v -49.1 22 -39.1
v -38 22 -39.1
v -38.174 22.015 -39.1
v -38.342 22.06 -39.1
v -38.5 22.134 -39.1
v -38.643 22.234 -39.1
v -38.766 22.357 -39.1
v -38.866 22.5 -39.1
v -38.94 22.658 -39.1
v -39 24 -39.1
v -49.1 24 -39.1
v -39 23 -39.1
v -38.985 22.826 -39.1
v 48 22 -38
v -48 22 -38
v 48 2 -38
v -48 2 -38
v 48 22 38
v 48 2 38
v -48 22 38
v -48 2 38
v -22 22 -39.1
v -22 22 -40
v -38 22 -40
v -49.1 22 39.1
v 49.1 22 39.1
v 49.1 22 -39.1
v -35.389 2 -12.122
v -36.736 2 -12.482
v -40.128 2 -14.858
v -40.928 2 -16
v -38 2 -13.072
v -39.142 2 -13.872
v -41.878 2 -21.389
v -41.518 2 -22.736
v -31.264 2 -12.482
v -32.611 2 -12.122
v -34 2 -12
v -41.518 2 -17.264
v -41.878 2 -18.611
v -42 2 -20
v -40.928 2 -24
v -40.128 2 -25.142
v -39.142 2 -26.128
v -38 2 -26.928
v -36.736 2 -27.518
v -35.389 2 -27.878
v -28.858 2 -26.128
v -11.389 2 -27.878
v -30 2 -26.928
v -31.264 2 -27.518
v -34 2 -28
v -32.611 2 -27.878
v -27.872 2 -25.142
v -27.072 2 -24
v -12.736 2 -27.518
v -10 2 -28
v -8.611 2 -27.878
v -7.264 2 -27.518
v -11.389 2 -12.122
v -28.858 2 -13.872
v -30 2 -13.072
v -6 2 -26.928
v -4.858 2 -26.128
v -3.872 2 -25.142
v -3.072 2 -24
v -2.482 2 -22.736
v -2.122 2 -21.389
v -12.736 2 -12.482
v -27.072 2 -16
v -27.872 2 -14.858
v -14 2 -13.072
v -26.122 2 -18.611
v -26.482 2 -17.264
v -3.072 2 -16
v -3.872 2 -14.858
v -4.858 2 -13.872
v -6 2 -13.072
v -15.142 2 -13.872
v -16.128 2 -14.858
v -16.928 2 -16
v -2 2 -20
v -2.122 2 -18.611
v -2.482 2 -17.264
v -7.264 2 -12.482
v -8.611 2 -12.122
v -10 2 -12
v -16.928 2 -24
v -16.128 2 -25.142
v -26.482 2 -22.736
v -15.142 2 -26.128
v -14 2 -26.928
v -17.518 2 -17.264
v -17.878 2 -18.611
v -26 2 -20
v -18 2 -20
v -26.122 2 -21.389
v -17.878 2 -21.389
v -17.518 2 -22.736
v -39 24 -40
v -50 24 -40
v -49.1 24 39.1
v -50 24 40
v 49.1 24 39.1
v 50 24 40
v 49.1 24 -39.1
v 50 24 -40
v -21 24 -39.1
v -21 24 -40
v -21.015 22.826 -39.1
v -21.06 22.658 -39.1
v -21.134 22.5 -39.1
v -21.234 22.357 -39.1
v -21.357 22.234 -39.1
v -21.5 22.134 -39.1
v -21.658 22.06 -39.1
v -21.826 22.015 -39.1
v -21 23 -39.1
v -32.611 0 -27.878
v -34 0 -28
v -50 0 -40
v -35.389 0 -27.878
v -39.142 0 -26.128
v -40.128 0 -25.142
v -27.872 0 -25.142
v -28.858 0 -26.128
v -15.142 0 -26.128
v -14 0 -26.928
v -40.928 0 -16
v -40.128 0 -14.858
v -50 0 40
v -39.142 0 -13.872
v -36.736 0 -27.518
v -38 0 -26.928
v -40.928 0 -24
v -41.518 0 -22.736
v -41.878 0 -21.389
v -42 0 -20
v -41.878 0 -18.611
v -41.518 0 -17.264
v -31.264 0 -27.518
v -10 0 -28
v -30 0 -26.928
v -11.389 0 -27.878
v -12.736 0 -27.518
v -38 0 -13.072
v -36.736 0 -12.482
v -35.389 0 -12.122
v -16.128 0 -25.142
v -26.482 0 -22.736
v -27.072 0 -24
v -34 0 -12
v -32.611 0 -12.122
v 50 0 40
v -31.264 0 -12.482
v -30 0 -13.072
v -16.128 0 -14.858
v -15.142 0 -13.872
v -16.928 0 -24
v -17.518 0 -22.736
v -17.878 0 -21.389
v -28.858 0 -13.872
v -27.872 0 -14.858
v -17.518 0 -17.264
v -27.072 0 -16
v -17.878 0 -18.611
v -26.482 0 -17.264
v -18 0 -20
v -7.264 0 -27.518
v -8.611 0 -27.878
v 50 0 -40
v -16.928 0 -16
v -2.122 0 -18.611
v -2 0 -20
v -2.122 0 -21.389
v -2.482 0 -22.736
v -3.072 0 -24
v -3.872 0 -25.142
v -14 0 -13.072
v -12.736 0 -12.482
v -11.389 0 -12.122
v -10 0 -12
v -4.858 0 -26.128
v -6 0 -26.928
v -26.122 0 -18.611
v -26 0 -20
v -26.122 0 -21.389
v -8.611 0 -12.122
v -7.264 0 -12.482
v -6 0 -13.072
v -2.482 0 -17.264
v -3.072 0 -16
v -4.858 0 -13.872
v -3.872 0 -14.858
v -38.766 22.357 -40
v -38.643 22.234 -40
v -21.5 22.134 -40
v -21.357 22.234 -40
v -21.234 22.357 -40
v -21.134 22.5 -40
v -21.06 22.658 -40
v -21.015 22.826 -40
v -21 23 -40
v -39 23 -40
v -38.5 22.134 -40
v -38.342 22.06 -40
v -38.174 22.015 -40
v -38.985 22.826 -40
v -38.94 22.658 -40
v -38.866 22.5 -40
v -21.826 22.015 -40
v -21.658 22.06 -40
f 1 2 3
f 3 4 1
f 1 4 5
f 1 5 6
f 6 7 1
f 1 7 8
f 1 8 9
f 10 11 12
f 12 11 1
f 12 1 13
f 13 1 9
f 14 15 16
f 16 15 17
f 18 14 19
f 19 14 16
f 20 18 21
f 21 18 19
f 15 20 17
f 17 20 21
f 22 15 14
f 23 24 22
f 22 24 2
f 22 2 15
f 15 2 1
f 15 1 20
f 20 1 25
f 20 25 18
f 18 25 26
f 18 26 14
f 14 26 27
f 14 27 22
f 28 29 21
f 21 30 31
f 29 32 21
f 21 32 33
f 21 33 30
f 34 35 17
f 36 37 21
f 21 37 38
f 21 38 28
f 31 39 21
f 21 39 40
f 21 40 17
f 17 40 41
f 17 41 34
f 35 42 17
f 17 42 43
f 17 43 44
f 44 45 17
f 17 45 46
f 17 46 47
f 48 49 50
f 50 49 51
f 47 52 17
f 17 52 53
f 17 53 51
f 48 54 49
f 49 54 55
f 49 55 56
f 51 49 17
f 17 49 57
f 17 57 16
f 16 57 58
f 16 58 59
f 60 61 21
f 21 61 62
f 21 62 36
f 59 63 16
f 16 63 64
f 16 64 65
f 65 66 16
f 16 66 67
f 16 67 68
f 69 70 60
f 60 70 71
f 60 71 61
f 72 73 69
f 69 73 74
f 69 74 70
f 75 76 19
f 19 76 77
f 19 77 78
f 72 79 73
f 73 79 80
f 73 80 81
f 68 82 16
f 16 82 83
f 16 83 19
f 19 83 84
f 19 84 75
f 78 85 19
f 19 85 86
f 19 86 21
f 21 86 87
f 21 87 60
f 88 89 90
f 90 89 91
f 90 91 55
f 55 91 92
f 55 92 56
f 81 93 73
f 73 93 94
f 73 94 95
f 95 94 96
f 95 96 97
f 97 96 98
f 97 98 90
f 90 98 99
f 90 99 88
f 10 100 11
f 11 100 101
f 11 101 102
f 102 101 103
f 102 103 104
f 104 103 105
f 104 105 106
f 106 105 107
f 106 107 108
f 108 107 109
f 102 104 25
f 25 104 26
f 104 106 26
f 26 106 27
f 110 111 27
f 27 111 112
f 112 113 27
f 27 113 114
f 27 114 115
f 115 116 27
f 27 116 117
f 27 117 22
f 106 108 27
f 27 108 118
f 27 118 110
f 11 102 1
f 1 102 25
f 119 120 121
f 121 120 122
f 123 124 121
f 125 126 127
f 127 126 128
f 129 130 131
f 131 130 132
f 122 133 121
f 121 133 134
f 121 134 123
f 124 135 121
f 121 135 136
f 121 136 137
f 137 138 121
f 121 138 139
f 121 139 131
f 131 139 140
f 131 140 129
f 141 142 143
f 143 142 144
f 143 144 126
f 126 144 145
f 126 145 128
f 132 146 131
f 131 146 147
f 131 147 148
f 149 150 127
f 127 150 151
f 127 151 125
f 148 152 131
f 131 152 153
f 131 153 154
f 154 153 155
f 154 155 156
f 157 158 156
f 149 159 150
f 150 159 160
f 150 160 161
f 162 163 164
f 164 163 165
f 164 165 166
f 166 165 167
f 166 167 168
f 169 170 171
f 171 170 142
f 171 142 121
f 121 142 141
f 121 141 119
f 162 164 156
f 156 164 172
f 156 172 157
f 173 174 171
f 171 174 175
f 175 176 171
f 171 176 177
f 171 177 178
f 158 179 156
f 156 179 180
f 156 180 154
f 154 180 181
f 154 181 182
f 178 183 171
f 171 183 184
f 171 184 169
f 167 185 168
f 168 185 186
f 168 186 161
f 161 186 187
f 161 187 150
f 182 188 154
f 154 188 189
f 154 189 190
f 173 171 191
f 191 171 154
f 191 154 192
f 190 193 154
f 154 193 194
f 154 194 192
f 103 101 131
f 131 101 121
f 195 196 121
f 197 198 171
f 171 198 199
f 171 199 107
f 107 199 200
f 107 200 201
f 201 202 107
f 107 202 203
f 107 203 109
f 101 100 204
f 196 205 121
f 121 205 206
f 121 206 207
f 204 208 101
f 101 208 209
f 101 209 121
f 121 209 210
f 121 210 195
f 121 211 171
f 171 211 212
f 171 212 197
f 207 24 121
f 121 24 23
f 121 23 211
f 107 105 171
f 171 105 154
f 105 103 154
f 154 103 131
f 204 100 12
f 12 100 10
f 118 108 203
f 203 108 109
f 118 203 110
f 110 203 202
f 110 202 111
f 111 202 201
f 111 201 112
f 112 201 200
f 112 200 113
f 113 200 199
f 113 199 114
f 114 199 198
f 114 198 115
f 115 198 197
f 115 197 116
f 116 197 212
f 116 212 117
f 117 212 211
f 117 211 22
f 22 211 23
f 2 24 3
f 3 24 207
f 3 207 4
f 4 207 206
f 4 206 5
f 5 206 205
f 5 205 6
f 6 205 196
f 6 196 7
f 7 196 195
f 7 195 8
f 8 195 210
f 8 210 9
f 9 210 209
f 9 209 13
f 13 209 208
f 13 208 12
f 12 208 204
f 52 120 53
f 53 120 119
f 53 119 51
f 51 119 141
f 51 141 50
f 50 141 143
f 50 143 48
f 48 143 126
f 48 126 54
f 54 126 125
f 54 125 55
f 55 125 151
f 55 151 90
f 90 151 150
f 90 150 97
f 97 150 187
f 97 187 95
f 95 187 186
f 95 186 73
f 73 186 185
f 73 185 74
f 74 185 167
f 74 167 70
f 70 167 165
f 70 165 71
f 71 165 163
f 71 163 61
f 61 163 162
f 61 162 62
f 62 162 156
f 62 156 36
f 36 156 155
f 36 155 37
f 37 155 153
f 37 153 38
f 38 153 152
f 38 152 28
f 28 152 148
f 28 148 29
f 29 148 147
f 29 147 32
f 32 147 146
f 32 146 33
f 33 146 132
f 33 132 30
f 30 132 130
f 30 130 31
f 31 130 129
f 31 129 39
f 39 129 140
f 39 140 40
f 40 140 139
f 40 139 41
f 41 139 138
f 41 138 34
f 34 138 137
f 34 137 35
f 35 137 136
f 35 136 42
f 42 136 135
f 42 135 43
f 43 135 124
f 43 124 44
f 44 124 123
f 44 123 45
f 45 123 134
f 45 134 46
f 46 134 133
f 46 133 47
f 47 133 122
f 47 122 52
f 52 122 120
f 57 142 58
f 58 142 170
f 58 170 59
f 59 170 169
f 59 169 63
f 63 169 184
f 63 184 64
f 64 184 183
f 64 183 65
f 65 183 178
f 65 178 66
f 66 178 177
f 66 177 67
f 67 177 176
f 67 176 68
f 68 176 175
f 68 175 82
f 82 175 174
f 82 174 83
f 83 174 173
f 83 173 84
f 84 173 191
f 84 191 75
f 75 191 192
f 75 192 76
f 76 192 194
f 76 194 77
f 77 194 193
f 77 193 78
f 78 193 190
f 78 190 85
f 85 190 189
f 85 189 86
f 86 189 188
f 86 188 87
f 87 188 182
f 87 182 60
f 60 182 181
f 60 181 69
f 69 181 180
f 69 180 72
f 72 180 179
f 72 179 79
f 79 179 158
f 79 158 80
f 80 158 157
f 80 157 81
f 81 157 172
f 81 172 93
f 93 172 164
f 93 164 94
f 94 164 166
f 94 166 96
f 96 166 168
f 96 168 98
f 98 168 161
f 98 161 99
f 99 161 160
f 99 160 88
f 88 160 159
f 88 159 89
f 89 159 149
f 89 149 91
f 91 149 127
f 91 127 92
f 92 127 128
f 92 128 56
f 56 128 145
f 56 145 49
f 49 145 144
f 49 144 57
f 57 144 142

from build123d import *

# Parameters (mm, degrees)
ESQUISSE1_W             = 100
ESQUISSE1_H             = 80
BOSS_EXTRU_1_DEPTH      = 2
ESQUISSE2_W             = 100
ESQUISSE2_H             = 80
ESQUISSE2_W_2           = 96
ESQUISSE2_H_2           = 76
BOSS_EXTRU_2_DEPTH      = 20
ESQUISSE5_W             = 100
ESQUISSE5_H             = 80
ESQUISSE5_W_2           = 98.2
ESQUISSE5_H_2           = 78.2
BOSS_EXTRU_3_DEPTH      = 2
ESQUISSE6_W             = 18
ESQUISSE6_H             = 2
ENL_V_MAT_EXTRU_3_DEPTH = 10
CONG_1_R                = 1
ESQUISSE7_R             = 8
ENL_V_MAT_EXTRU_4_DEPTH = 10


with BuildPart() as part:
    # Esquisse1 → Boss.-Extru.1 (new body)
    with BuildSketch(Plane(origin=(0, 0, 0), x_dir=(1, 0, 0), z_dir=(0, 1, 0))):
        Rectangle(ESQUISSE1_W, ESQUISSE1_H)
    extrude(amount=BOSS_EXTRU_1_DEPTH)

    # Esquisse2 → Boss.-Extru.2 (add)
    with BuildSketch(Plane(origin=(0, 2, 0), x_dir=(1, 0, 0), z_dir=(0, 1, 0))):
        Rectangle(ESQUISSE2_W, ESQUISSE2_H)
        Rectangle(ESQUISSE2_W_2, ESQUISSE2_H_2, mode=Mode.SUBTRACT)
    extrude(amount=BOSS_EXTRU_2_DEPTH)

    # Esquisse5 → Boss.-Extru.3 (add)
    with BuildSketch(Plane(origin=(0, 22, 0), x_dir=(1, 0, 0), z_dir=(0, 1, 0))):
        Rectangle(ESQUISSE5_W, ESQUISSE5_H)
        Rectangle(ESQUISSE5_W_2, ESQUISSE5_H_2, mode=Mode.SUBTRACT)
    extrude(amount=BOSS_EXTRU_3_DEPTH)

    # Esquisse6 → Enlèv. mat.-Extru.3 (cut)
    with BuildSketch(Plane(origin=(0, 0, -40), x_dir=(-1, 0, 0), z_dir=(0, 0, -1))):
        with Locations((30, 23)):
            Rectangle(ESQUISSE6_W, ESQUISSE6_H)
    extrude(amount=-ENL_V_MAT_EXTRU_3_DEPTH, mode=Mode.SUBTRACT)

    # Congé1
    cong_1_edges = [part.edges().sort_by_distance(p)[0] for p in [
        (-39, 22, -39.55),
        (-21, 22, -39.55),
    ]]
    fillet(cong_1_edges, radius=CONG_1_R)

    # Esquisse7 → Enlèv. mat.-Extru.4 (cut)
    with BuildSketch(Plane.XZ):
        with Locations((-34, -20)):
            Circle(ESQUISSE7_R)
        with Locations((-10, -20)):
            Circle(ESQUISSE7_R)
    extrude(amount=-ENL_V_MAT_EXTRU_4_DEPTH, mode=Mode.SUBTRACT)


solid = part.part
